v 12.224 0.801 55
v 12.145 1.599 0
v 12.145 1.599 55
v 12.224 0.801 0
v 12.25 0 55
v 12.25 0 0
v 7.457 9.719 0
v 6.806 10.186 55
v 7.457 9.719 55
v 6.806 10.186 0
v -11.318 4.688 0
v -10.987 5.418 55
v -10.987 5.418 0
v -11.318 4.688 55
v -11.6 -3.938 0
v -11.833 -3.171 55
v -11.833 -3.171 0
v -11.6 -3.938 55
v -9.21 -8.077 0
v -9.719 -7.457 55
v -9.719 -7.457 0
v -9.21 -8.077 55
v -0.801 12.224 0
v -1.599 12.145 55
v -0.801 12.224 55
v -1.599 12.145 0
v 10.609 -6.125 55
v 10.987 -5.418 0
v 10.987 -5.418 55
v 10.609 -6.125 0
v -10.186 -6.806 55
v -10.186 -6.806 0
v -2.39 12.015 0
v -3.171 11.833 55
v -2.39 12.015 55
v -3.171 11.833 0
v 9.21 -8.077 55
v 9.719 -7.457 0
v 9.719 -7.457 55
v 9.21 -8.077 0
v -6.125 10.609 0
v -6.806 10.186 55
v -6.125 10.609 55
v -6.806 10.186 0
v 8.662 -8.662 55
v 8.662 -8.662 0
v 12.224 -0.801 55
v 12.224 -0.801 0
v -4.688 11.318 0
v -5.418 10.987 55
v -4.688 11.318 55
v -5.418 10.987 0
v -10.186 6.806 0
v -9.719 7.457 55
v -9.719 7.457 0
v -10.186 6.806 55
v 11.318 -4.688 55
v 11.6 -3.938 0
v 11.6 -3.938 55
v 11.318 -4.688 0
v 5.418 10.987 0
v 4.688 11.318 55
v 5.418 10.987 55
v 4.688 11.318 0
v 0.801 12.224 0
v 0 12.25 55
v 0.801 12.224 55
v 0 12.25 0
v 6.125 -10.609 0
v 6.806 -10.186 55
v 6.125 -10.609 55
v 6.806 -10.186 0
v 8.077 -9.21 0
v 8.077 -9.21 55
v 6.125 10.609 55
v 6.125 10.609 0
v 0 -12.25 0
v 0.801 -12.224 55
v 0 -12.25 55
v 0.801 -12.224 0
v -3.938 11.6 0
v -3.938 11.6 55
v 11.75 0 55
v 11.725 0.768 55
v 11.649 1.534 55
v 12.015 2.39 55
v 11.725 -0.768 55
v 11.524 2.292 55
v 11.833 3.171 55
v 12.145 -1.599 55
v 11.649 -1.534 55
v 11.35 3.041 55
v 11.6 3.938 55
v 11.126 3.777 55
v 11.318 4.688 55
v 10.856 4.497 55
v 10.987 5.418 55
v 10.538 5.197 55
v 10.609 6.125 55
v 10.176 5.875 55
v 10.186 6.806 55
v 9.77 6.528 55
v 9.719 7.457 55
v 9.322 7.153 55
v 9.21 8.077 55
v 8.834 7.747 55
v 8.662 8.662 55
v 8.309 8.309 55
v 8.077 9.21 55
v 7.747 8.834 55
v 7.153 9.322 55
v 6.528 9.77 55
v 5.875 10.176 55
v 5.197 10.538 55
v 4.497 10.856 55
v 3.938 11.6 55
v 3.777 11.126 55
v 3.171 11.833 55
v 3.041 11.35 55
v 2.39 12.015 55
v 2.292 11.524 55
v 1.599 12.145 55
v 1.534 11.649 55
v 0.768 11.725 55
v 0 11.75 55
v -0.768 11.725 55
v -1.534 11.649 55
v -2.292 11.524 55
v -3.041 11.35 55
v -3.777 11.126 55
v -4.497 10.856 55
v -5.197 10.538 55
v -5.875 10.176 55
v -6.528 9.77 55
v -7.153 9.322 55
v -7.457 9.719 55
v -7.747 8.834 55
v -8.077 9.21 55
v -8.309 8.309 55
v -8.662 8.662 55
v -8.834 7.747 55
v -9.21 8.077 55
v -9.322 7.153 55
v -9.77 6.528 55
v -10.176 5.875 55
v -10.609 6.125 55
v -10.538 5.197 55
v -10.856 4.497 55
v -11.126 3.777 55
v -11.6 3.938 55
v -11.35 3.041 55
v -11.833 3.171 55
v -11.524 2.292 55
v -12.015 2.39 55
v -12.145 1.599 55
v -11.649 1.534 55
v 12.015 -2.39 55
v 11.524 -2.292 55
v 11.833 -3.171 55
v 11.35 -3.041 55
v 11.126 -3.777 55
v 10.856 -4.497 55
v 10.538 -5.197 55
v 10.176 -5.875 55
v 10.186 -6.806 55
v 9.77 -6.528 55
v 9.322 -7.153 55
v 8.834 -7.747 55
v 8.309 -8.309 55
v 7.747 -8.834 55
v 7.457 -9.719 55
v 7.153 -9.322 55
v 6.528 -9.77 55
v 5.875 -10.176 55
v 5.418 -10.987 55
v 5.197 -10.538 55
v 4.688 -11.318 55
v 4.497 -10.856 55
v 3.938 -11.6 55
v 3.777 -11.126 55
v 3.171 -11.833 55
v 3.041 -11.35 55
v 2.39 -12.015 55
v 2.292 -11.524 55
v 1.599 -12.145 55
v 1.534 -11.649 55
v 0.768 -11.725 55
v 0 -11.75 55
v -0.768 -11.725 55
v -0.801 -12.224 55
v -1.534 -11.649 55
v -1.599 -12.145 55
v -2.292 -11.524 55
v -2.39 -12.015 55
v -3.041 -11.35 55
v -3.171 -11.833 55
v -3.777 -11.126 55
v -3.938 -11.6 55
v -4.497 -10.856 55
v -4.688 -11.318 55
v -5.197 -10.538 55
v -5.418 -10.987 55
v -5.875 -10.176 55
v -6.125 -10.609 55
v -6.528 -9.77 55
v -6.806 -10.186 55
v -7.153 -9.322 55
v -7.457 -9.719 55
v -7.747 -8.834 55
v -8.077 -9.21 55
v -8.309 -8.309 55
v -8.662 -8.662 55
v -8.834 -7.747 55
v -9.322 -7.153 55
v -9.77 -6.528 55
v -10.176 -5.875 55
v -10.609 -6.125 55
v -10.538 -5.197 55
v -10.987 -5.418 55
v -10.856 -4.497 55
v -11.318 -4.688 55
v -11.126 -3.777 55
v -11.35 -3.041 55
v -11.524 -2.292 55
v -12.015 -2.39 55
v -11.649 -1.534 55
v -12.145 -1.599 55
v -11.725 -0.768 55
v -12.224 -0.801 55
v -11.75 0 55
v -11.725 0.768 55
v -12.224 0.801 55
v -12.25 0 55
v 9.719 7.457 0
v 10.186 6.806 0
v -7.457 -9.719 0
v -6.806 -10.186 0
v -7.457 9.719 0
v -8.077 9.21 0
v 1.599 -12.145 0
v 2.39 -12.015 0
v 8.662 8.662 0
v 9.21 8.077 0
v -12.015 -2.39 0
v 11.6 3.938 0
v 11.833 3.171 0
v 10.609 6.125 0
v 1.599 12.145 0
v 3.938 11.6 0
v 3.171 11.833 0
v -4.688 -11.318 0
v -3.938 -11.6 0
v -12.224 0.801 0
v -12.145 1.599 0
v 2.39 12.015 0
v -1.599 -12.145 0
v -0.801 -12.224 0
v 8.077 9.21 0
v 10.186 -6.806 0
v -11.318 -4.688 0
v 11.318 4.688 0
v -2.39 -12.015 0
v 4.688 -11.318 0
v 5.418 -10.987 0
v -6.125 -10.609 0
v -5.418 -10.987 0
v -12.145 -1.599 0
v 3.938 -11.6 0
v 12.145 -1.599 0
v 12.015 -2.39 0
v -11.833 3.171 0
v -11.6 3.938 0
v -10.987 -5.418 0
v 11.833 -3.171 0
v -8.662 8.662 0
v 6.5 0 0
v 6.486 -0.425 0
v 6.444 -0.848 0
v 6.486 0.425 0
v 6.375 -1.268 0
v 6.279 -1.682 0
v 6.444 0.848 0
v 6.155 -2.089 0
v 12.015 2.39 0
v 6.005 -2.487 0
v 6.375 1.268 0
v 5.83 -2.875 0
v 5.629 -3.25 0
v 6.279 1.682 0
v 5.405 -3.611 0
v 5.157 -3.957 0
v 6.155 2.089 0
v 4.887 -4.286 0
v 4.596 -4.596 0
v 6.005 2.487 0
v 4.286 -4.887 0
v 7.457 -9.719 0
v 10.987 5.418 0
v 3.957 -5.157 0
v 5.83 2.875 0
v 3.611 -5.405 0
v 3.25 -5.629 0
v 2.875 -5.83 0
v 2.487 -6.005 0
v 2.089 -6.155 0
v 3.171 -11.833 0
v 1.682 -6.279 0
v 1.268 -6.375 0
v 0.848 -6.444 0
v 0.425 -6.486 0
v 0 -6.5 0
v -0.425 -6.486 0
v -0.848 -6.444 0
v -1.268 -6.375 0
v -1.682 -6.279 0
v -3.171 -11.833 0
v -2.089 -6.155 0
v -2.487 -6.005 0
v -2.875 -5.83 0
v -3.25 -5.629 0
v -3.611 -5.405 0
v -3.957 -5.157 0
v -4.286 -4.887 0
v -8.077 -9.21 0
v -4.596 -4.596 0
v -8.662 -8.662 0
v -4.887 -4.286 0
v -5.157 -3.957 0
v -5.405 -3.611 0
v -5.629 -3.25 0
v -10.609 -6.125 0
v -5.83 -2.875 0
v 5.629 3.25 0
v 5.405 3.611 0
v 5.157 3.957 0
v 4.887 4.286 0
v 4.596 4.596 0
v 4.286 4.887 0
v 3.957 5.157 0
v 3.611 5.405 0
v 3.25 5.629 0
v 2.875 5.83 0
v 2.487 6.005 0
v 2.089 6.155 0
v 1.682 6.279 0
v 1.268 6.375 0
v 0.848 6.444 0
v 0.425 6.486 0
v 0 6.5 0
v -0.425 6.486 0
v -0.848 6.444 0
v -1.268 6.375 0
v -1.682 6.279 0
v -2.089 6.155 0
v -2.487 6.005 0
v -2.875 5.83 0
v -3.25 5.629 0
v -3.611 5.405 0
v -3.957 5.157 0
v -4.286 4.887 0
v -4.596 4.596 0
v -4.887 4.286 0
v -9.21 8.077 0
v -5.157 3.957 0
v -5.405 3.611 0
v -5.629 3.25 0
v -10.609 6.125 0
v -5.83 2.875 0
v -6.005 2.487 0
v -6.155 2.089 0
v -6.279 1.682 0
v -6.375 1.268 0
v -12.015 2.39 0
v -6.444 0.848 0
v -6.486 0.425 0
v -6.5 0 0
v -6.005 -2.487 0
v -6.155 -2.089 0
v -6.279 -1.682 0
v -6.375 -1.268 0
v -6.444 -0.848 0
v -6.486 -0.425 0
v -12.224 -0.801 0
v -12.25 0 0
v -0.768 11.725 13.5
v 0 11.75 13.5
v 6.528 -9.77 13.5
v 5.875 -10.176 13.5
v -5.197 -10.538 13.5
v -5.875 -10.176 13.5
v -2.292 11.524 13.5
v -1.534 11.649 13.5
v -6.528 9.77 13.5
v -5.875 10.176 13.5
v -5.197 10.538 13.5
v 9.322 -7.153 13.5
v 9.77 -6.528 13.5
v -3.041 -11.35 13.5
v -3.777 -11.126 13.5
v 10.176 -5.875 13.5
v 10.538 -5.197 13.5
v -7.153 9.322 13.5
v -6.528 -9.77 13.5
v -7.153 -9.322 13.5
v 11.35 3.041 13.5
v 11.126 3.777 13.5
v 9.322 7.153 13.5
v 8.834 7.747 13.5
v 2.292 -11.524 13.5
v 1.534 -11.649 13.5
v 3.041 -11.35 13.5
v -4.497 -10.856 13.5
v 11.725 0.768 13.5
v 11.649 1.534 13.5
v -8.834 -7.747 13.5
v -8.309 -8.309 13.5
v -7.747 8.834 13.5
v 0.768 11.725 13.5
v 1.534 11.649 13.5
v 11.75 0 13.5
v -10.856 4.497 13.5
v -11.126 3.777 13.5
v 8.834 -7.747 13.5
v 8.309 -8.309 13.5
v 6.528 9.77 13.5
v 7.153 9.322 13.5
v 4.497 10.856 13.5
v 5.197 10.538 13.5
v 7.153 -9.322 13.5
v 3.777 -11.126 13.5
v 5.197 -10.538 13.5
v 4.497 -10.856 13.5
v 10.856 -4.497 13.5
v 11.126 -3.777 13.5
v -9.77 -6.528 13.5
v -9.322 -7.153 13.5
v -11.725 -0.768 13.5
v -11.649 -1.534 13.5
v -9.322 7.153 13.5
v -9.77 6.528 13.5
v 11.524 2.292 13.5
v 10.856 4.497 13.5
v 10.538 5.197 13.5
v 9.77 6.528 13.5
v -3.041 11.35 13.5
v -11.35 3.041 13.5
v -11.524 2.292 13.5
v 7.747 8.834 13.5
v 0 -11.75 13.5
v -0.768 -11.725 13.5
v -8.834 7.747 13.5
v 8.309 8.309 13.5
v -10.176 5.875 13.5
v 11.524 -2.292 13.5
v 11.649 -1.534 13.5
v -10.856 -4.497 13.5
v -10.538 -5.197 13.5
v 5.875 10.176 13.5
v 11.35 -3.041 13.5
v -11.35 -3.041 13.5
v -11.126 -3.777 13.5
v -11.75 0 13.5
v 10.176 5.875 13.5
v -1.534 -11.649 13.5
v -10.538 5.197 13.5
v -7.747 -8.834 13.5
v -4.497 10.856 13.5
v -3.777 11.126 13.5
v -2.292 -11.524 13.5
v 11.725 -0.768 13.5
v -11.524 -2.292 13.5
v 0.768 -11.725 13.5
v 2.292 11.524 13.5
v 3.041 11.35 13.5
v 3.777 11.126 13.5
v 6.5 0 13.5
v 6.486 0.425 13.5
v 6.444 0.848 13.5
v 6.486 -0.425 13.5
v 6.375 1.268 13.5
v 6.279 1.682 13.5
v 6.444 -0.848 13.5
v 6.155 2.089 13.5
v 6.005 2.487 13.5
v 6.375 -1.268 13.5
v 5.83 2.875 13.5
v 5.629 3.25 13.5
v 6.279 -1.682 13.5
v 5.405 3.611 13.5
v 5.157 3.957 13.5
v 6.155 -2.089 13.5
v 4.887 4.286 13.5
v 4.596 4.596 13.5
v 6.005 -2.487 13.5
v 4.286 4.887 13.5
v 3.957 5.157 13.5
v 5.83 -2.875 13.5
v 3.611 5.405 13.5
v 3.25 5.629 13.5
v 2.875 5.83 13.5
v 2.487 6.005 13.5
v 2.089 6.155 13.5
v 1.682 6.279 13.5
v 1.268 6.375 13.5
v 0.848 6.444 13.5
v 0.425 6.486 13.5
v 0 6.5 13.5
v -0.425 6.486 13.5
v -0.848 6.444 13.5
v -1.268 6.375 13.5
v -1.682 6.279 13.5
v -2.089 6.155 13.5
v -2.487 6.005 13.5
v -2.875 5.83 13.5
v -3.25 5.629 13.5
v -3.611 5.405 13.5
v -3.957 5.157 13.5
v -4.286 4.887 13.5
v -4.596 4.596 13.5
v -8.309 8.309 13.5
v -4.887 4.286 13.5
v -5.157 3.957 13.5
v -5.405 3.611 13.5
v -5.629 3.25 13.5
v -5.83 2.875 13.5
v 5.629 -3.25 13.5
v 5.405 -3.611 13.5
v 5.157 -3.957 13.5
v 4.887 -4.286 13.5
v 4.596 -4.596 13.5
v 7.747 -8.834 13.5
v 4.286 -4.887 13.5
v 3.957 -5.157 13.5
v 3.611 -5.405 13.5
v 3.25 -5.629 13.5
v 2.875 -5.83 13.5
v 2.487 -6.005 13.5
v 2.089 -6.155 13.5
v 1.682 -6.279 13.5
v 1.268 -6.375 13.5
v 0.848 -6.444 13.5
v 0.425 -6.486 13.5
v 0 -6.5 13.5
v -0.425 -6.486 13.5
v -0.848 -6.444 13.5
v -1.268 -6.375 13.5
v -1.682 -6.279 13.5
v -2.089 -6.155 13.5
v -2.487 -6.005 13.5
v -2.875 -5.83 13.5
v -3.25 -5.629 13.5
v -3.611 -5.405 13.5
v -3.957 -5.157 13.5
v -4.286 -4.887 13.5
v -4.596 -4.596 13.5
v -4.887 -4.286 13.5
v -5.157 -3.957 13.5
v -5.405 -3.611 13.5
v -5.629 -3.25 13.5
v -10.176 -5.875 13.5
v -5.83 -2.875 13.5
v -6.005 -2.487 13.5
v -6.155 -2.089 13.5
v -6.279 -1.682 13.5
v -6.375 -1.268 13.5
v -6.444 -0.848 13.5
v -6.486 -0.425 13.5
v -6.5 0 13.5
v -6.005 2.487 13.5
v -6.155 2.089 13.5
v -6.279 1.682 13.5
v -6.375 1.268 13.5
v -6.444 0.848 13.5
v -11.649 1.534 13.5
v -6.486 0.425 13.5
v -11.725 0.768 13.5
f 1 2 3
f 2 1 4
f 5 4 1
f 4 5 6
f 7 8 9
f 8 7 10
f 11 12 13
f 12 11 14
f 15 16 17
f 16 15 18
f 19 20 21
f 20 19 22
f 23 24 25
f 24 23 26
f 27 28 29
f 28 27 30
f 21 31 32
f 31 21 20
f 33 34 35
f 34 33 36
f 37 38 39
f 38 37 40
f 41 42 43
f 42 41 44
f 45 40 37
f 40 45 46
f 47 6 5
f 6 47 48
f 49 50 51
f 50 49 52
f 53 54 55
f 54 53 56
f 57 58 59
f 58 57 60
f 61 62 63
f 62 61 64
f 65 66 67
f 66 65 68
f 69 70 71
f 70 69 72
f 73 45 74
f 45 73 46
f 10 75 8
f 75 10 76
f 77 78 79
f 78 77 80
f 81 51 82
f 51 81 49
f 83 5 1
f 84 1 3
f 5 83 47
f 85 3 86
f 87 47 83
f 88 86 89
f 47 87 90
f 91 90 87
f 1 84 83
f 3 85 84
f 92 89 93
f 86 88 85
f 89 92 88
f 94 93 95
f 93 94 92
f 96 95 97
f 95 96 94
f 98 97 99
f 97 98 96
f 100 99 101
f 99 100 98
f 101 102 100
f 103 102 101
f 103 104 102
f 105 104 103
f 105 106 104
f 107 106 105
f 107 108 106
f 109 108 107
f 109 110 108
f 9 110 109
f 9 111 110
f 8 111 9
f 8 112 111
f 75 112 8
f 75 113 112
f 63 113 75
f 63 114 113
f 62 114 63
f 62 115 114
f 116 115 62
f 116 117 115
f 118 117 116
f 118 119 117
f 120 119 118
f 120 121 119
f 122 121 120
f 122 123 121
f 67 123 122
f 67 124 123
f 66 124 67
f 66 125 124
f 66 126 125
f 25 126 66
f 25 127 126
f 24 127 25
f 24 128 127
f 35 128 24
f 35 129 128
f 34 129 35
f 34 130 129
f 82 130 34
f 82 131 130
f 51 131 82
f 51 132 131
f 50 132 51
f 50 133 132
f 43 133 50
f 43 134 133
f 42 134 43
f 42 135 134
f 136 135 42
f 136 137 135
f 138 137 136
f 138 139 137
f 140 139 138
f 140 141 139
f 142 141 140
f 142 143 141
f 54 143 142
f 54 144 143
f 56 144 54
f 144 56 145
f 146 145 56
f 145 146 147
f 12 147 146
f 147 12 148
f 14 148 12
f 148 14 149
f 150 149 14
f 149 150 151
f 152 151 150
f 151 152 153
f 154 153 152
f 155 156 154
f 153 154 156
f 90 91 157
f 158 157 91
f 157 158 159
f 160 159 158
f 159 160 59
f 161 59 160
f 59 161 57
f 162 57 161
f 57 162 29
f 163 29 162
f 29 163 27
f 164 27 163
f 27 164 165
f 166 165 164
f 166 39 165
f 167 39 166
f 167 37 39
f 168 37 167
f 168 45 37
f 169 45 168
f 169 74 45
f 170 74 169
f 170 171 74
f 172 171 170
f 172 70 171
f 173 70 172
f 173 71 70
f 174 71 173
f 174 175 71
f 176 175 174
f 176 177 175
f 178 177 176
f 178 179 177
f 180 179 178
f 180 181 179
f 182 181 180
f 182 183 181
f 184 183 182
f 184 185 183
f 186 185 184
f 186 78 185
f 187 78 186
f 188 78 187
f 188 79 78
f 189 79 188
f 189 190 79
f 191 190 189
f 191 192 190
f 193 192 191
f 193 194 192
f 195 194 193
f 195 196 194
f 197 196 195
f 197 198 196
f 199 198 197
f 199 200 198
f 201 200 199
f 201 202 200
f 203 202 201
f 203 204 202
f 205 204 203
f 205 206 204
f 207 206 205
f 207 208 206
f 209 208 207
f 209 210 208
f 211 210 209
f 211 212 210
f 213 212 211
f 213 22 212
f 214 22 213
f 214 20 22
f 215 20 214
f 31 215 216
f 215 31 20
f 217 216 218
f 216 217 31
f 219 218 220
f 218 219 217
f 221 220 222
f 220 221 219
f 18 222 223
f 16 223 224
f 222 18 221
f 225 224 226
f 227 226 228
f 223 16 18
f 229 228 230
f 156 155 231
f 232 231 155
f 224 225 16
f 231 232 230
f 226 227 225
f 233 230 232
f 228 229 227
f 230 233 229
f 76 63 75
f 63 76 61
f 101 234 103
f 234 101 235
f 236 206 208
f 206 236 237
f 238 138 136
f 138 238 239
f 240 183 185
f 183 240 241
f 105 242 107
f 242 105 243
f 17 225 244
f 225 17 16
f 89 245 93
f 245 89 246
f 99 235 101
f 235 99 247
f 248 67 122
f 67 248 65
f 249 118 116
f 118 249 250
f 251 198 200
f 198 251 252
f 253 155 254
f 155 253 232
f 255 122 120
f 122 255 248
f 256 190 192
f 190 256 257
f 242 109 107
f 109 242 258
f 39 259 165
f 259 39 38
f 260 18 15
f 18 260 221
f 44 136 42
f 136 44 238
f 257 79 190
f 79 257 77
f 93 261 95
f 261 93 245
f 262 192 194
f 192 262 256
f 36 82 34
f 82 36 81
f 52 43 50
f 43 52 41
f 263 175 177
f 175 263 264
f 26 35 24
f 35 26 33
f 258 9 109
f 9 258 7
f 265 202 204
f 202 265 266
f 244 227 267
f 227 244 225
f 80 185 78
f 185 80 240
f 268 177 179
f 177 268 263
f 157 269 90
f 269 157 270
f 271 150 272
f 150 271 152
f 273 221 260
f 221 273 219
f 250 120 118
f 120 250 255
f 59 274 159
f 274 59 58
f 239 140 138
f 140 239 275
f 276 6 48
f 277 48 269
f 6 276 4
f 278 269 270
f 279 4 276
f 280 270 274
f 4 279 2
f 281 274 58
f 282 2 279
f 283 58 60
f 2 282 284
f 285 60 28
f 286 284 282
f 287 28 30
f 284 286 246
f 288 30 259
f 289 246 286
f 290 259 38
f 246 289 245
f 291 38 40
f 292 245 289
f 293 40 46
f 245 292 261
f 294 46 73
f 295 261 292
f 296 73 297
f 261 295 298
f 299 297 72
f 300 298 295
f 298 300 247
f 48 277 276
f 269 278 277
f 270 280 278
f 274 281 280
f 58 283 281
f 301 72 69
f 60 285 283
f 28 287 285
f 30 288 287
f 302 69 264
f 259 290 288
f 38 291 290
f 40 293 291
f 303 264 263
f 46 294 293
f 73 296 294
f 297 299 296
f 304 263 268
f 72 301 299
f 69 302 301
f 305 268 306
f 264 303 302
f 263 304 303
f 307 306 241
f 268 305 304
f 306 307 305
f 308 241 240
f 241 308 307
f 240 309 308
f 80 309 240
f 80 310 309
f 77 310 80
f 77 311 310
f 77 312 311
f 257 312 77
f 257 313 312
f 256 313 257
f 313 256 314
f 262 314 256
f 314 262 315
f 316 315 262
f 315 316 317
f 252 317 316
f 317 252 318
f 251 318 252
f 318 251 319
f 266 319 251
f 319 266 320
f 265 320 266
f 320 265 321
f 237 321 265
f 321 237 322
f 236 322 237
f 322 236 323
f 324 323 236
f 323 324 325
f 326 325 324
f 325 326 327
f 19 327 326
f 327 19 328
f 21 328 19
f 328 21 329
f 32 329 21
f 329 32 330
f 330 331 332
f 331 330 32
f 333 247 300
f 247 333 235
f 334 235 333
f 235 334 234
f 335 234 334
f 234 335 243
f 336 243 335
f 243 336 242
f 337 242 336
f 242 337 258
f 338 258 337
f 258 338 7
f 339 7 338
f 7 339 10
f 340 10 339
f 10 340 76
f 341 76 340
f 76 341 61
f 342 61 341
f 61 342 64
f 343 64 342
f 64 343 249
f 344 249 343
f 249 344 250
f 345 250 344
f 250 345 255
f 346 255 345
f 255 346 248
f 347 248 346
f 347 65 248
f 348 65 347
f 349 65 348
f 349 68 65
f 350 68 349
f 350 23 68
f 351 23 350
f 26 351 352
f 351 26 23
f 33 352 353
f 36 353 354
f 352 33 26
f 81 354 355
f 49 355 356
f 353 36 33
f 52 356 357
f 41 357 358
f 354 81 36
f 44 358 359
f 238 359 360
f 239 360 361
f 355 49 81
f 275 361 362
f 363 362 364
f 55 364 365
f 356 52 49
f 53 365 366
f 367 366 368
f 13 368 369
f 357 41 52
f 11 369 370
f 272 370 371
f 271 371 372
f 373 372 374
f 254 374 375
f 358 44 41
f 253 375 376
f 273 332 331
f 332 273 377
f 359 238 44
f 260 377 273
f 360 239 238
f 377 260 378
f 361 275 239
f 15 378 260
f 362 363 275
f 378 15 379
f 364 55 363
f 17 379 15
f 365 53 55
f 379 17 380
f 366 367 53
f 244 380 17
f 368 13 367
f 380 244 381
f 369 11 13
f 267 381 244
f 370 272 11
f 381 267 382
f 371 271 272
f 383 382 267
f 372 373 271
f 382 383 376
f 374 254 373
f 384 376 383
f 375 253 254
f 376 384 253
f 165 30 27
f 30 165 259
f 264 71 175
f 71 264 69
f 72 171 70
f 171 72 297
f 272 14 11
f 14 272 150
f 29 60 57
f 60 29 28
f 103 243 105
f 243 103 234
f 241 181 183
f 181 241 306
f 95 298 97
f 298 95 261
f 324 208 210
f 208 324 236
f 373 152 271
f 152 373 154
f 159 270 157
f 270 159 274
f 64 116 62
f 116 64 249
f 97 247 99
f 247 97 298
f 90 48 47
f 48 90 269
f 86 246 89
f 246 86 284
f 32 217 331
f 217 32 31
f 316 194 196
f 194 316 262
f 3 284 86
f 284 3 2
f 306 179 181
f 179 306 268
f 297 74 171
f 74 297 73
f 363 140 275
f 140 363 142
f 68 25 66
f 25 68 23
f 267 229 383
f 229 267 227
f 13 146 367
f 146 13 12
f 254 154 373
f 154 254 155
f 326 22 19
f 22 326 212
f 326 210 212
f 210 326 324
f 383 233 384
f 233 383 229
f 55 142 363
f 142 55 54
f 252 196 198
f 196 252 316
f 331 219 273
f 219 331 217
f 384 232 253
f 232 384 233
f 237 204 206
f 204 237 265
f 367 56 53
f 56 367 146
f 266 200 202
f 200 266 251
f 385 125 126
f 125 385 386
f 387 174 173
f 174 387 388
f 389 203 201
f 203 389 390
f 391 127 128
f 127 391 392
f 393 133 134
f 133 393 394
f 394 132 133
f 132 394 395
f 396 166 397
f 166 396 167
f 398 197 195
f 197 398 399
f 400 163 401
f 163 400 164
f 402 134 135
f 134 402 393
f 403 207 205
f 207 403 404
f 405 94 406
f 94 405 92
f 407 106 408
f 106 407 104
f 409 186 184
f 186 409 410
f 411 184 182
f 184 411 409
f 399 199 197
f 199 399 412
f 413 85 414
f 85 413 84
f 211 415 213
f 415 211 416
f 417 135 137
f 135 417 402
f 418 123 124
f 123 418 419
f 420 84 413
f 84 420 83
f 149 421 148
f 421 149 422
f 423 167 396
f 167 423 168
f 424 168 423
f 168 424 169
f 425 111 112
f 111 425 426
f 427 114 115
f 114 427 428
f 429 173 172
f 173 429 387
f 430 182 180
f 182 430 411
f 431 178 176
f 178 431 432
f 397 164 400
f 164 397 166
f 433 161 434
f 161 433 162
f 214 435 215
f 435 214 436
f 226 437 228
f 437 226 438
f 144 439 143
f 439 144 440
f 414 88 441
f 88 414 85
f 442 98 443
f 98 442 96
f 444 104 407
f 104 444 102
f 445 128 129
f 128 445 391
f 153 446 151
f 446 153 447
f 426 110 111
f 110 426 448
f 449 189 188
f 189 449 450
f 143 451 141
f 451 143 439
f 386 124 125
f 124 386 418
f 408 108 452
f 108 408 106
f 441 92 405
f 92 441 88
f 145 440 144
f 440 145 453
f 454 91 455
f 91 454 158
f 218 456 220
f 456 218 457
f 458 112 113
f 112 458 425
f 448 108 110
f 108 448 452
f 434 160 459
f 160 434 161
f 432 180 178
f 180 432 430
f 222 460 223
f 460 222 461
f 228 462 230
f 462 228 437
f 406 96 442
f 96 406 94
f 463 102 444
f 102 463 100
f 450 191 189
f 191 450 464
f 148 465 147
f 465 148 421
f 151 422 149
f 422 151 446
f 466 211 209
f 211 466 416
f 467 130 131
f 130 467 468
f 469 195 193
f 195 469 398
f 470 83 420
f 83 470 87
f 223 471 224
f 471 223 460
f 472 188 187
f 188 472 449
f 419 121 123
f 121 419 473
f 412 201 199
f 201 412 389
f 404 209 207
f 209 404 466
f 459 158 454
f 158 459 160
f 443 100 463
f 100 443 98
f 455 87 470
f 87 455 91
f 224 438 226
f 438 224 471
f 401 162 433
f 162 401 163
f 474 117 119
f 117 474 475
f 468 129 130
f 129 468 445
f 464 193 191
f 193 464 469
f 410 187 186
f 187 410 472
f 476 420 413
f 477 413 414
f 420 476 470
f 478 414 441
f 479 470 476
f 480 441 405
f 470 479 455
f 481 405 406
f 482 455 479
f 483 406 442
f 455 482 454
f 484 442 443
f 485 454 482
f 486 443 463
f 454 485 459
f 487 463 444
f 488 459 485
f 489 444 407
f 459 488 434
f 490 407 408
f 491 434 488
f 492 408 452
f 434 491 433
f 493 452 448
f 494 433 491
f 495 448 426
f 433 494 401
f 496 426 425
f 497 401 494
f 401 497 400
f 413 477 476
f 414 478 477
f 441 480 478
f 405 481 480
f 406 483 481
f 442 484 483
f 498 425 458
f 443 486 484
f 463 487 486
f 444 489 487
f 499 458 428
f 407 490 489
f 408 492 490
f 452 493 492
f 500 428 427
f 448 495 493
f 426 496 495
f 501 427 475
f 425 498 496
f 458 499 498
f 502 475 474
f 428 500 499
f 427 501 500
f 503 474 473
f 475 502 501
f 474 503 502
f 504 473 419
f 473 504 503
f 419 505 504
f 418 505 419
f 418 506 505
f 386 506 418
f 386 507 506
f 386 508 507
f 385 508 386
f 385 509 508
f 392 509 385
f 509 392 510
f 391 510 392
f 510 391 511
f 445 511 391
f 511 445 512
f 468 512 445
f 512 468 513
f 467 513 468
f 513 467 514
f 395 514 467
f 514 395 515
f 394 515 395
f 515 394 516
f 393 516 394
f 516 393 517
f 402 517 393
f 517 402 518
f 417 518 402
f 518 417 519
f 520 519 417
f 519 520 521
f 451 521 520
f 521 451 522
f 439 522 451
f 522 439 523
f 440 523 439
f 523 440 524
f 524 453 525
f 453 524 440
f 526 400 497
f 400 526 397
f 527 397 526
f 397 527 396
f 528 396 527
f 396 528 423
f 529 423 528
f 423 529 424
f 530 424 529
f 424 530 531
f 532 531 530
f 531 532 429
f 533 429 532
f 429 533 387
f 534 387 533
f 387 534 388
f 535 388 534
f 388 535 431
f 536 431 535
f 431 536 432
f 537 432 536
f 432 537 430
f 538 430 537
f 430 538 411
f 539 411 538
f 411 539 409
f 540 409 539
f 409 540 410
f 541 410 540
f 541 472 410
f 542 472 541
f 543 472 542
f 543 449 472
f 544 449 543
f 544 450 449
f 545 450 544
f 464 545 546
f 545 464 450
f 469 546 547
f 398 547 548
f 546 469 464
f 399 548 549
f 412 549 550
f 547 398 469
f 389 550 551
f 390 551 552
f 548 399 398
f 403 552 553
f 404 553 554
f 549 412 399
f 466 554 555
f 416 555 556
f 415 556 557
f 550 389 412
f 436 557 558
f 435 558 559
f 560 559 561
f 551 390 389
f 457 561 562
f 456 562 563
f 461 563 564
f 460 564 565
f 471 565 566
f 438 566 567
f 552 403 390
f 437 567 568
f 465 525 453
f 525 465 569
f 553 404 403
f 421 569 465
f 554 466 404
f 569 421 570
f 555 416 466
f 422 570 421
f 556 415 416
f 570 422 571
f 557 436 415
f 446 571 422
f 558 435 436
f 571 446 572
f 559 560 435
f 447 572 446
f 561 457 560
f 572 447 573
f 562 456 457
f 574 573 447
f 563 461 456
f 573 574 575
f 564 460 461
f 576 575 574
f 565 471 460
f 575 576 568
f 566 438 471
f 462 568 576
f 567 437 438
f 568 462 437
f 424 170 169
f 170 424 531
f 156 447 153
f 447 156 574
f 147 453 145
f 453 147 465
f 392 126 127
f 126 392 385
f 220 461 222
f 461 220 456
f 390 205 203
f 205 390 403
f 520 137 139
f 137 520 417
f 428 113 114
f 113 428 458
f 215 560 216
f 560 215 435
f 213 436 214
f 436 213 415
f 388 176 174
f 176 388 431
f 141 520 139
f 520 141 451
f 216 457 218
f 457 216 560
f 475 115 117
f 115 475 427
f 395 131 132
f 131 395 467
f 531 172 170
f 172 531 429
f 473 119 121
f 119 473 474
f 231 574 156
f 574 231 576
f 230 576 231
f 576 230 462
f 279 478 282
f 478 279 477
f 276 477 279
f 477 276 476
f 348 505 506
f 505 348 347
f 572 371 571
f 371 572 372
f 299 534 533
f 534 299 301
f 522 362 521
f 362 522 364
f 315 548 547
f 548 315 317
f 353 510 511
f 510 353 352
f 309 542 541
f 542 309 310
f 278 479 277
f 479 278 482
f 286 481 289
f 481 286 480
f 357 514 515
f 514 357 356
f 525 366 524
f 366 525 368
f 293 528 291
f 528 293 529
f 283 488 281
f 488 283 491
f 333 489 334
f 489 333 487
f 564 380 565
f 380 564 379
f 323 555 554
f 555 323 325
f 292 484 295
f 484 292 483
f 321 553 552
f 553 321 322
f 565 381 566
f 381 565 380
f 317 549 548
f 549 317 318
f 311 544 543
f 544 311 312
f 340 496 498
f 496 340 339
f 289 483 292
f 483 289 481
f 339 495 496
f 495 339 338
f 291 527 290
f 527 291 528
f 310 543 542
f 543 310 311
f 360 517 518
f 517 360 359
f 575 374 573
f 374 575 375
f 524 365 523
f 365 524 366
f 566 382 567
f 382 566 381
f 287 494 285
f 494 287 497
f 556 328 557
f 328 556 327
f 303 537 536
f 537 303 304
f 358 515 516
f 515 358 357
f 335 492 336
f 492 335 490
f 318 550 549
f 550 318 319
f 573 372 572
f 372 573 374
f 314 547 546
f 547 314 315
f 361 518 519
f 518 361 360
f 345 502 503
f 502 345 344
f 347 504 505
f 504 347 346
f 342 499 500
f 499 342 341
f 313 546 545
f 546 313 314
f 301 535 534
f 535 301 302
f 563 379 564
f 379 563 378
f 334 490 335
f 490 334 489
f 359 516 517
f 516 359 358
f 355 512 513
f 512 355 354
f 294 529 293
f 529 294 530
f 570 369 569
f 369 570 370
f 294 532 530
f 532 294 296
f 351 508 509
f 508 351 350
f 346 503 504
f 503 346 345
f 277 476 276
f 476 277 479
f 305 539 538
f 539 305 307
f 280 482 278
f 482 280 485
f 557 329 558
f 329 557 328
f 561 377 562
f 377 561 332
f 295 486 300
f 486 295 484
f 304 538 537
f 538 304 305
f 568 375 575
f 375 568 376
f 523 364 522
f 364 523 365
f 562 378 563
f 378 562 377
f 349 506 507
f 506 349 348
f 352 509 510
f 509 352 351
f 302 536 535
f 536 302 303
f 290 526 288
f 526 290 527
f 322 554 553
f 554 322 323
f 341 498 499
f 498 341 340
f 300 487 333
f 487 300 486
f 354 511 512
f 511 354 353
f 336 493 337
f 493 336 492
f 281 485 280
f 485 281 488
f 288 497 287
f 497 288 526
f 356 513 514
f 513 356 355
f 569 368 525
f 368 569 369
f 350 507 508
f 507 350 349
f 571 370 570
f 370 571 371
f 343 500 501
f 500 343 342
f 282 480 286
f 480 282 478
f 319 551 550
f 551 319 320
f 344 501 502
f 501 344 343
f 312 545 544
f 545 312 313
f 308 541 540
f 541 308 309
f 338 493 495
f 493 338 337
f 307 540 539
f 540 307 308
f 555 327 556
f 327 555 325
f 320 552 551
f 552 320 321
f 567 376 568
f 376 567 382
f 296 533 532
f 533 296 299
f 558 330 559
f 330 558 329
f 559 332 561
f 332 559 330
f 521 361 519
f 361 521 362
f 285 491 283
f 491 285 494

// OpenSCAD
// Toilet Roll Extender
$fn=96;
difference() {
    cylinder(55, d=24.5);
    translate([0,0,13.5]) cylinder(55, d=23.5);
    cylinder(55, d=13);
    };
